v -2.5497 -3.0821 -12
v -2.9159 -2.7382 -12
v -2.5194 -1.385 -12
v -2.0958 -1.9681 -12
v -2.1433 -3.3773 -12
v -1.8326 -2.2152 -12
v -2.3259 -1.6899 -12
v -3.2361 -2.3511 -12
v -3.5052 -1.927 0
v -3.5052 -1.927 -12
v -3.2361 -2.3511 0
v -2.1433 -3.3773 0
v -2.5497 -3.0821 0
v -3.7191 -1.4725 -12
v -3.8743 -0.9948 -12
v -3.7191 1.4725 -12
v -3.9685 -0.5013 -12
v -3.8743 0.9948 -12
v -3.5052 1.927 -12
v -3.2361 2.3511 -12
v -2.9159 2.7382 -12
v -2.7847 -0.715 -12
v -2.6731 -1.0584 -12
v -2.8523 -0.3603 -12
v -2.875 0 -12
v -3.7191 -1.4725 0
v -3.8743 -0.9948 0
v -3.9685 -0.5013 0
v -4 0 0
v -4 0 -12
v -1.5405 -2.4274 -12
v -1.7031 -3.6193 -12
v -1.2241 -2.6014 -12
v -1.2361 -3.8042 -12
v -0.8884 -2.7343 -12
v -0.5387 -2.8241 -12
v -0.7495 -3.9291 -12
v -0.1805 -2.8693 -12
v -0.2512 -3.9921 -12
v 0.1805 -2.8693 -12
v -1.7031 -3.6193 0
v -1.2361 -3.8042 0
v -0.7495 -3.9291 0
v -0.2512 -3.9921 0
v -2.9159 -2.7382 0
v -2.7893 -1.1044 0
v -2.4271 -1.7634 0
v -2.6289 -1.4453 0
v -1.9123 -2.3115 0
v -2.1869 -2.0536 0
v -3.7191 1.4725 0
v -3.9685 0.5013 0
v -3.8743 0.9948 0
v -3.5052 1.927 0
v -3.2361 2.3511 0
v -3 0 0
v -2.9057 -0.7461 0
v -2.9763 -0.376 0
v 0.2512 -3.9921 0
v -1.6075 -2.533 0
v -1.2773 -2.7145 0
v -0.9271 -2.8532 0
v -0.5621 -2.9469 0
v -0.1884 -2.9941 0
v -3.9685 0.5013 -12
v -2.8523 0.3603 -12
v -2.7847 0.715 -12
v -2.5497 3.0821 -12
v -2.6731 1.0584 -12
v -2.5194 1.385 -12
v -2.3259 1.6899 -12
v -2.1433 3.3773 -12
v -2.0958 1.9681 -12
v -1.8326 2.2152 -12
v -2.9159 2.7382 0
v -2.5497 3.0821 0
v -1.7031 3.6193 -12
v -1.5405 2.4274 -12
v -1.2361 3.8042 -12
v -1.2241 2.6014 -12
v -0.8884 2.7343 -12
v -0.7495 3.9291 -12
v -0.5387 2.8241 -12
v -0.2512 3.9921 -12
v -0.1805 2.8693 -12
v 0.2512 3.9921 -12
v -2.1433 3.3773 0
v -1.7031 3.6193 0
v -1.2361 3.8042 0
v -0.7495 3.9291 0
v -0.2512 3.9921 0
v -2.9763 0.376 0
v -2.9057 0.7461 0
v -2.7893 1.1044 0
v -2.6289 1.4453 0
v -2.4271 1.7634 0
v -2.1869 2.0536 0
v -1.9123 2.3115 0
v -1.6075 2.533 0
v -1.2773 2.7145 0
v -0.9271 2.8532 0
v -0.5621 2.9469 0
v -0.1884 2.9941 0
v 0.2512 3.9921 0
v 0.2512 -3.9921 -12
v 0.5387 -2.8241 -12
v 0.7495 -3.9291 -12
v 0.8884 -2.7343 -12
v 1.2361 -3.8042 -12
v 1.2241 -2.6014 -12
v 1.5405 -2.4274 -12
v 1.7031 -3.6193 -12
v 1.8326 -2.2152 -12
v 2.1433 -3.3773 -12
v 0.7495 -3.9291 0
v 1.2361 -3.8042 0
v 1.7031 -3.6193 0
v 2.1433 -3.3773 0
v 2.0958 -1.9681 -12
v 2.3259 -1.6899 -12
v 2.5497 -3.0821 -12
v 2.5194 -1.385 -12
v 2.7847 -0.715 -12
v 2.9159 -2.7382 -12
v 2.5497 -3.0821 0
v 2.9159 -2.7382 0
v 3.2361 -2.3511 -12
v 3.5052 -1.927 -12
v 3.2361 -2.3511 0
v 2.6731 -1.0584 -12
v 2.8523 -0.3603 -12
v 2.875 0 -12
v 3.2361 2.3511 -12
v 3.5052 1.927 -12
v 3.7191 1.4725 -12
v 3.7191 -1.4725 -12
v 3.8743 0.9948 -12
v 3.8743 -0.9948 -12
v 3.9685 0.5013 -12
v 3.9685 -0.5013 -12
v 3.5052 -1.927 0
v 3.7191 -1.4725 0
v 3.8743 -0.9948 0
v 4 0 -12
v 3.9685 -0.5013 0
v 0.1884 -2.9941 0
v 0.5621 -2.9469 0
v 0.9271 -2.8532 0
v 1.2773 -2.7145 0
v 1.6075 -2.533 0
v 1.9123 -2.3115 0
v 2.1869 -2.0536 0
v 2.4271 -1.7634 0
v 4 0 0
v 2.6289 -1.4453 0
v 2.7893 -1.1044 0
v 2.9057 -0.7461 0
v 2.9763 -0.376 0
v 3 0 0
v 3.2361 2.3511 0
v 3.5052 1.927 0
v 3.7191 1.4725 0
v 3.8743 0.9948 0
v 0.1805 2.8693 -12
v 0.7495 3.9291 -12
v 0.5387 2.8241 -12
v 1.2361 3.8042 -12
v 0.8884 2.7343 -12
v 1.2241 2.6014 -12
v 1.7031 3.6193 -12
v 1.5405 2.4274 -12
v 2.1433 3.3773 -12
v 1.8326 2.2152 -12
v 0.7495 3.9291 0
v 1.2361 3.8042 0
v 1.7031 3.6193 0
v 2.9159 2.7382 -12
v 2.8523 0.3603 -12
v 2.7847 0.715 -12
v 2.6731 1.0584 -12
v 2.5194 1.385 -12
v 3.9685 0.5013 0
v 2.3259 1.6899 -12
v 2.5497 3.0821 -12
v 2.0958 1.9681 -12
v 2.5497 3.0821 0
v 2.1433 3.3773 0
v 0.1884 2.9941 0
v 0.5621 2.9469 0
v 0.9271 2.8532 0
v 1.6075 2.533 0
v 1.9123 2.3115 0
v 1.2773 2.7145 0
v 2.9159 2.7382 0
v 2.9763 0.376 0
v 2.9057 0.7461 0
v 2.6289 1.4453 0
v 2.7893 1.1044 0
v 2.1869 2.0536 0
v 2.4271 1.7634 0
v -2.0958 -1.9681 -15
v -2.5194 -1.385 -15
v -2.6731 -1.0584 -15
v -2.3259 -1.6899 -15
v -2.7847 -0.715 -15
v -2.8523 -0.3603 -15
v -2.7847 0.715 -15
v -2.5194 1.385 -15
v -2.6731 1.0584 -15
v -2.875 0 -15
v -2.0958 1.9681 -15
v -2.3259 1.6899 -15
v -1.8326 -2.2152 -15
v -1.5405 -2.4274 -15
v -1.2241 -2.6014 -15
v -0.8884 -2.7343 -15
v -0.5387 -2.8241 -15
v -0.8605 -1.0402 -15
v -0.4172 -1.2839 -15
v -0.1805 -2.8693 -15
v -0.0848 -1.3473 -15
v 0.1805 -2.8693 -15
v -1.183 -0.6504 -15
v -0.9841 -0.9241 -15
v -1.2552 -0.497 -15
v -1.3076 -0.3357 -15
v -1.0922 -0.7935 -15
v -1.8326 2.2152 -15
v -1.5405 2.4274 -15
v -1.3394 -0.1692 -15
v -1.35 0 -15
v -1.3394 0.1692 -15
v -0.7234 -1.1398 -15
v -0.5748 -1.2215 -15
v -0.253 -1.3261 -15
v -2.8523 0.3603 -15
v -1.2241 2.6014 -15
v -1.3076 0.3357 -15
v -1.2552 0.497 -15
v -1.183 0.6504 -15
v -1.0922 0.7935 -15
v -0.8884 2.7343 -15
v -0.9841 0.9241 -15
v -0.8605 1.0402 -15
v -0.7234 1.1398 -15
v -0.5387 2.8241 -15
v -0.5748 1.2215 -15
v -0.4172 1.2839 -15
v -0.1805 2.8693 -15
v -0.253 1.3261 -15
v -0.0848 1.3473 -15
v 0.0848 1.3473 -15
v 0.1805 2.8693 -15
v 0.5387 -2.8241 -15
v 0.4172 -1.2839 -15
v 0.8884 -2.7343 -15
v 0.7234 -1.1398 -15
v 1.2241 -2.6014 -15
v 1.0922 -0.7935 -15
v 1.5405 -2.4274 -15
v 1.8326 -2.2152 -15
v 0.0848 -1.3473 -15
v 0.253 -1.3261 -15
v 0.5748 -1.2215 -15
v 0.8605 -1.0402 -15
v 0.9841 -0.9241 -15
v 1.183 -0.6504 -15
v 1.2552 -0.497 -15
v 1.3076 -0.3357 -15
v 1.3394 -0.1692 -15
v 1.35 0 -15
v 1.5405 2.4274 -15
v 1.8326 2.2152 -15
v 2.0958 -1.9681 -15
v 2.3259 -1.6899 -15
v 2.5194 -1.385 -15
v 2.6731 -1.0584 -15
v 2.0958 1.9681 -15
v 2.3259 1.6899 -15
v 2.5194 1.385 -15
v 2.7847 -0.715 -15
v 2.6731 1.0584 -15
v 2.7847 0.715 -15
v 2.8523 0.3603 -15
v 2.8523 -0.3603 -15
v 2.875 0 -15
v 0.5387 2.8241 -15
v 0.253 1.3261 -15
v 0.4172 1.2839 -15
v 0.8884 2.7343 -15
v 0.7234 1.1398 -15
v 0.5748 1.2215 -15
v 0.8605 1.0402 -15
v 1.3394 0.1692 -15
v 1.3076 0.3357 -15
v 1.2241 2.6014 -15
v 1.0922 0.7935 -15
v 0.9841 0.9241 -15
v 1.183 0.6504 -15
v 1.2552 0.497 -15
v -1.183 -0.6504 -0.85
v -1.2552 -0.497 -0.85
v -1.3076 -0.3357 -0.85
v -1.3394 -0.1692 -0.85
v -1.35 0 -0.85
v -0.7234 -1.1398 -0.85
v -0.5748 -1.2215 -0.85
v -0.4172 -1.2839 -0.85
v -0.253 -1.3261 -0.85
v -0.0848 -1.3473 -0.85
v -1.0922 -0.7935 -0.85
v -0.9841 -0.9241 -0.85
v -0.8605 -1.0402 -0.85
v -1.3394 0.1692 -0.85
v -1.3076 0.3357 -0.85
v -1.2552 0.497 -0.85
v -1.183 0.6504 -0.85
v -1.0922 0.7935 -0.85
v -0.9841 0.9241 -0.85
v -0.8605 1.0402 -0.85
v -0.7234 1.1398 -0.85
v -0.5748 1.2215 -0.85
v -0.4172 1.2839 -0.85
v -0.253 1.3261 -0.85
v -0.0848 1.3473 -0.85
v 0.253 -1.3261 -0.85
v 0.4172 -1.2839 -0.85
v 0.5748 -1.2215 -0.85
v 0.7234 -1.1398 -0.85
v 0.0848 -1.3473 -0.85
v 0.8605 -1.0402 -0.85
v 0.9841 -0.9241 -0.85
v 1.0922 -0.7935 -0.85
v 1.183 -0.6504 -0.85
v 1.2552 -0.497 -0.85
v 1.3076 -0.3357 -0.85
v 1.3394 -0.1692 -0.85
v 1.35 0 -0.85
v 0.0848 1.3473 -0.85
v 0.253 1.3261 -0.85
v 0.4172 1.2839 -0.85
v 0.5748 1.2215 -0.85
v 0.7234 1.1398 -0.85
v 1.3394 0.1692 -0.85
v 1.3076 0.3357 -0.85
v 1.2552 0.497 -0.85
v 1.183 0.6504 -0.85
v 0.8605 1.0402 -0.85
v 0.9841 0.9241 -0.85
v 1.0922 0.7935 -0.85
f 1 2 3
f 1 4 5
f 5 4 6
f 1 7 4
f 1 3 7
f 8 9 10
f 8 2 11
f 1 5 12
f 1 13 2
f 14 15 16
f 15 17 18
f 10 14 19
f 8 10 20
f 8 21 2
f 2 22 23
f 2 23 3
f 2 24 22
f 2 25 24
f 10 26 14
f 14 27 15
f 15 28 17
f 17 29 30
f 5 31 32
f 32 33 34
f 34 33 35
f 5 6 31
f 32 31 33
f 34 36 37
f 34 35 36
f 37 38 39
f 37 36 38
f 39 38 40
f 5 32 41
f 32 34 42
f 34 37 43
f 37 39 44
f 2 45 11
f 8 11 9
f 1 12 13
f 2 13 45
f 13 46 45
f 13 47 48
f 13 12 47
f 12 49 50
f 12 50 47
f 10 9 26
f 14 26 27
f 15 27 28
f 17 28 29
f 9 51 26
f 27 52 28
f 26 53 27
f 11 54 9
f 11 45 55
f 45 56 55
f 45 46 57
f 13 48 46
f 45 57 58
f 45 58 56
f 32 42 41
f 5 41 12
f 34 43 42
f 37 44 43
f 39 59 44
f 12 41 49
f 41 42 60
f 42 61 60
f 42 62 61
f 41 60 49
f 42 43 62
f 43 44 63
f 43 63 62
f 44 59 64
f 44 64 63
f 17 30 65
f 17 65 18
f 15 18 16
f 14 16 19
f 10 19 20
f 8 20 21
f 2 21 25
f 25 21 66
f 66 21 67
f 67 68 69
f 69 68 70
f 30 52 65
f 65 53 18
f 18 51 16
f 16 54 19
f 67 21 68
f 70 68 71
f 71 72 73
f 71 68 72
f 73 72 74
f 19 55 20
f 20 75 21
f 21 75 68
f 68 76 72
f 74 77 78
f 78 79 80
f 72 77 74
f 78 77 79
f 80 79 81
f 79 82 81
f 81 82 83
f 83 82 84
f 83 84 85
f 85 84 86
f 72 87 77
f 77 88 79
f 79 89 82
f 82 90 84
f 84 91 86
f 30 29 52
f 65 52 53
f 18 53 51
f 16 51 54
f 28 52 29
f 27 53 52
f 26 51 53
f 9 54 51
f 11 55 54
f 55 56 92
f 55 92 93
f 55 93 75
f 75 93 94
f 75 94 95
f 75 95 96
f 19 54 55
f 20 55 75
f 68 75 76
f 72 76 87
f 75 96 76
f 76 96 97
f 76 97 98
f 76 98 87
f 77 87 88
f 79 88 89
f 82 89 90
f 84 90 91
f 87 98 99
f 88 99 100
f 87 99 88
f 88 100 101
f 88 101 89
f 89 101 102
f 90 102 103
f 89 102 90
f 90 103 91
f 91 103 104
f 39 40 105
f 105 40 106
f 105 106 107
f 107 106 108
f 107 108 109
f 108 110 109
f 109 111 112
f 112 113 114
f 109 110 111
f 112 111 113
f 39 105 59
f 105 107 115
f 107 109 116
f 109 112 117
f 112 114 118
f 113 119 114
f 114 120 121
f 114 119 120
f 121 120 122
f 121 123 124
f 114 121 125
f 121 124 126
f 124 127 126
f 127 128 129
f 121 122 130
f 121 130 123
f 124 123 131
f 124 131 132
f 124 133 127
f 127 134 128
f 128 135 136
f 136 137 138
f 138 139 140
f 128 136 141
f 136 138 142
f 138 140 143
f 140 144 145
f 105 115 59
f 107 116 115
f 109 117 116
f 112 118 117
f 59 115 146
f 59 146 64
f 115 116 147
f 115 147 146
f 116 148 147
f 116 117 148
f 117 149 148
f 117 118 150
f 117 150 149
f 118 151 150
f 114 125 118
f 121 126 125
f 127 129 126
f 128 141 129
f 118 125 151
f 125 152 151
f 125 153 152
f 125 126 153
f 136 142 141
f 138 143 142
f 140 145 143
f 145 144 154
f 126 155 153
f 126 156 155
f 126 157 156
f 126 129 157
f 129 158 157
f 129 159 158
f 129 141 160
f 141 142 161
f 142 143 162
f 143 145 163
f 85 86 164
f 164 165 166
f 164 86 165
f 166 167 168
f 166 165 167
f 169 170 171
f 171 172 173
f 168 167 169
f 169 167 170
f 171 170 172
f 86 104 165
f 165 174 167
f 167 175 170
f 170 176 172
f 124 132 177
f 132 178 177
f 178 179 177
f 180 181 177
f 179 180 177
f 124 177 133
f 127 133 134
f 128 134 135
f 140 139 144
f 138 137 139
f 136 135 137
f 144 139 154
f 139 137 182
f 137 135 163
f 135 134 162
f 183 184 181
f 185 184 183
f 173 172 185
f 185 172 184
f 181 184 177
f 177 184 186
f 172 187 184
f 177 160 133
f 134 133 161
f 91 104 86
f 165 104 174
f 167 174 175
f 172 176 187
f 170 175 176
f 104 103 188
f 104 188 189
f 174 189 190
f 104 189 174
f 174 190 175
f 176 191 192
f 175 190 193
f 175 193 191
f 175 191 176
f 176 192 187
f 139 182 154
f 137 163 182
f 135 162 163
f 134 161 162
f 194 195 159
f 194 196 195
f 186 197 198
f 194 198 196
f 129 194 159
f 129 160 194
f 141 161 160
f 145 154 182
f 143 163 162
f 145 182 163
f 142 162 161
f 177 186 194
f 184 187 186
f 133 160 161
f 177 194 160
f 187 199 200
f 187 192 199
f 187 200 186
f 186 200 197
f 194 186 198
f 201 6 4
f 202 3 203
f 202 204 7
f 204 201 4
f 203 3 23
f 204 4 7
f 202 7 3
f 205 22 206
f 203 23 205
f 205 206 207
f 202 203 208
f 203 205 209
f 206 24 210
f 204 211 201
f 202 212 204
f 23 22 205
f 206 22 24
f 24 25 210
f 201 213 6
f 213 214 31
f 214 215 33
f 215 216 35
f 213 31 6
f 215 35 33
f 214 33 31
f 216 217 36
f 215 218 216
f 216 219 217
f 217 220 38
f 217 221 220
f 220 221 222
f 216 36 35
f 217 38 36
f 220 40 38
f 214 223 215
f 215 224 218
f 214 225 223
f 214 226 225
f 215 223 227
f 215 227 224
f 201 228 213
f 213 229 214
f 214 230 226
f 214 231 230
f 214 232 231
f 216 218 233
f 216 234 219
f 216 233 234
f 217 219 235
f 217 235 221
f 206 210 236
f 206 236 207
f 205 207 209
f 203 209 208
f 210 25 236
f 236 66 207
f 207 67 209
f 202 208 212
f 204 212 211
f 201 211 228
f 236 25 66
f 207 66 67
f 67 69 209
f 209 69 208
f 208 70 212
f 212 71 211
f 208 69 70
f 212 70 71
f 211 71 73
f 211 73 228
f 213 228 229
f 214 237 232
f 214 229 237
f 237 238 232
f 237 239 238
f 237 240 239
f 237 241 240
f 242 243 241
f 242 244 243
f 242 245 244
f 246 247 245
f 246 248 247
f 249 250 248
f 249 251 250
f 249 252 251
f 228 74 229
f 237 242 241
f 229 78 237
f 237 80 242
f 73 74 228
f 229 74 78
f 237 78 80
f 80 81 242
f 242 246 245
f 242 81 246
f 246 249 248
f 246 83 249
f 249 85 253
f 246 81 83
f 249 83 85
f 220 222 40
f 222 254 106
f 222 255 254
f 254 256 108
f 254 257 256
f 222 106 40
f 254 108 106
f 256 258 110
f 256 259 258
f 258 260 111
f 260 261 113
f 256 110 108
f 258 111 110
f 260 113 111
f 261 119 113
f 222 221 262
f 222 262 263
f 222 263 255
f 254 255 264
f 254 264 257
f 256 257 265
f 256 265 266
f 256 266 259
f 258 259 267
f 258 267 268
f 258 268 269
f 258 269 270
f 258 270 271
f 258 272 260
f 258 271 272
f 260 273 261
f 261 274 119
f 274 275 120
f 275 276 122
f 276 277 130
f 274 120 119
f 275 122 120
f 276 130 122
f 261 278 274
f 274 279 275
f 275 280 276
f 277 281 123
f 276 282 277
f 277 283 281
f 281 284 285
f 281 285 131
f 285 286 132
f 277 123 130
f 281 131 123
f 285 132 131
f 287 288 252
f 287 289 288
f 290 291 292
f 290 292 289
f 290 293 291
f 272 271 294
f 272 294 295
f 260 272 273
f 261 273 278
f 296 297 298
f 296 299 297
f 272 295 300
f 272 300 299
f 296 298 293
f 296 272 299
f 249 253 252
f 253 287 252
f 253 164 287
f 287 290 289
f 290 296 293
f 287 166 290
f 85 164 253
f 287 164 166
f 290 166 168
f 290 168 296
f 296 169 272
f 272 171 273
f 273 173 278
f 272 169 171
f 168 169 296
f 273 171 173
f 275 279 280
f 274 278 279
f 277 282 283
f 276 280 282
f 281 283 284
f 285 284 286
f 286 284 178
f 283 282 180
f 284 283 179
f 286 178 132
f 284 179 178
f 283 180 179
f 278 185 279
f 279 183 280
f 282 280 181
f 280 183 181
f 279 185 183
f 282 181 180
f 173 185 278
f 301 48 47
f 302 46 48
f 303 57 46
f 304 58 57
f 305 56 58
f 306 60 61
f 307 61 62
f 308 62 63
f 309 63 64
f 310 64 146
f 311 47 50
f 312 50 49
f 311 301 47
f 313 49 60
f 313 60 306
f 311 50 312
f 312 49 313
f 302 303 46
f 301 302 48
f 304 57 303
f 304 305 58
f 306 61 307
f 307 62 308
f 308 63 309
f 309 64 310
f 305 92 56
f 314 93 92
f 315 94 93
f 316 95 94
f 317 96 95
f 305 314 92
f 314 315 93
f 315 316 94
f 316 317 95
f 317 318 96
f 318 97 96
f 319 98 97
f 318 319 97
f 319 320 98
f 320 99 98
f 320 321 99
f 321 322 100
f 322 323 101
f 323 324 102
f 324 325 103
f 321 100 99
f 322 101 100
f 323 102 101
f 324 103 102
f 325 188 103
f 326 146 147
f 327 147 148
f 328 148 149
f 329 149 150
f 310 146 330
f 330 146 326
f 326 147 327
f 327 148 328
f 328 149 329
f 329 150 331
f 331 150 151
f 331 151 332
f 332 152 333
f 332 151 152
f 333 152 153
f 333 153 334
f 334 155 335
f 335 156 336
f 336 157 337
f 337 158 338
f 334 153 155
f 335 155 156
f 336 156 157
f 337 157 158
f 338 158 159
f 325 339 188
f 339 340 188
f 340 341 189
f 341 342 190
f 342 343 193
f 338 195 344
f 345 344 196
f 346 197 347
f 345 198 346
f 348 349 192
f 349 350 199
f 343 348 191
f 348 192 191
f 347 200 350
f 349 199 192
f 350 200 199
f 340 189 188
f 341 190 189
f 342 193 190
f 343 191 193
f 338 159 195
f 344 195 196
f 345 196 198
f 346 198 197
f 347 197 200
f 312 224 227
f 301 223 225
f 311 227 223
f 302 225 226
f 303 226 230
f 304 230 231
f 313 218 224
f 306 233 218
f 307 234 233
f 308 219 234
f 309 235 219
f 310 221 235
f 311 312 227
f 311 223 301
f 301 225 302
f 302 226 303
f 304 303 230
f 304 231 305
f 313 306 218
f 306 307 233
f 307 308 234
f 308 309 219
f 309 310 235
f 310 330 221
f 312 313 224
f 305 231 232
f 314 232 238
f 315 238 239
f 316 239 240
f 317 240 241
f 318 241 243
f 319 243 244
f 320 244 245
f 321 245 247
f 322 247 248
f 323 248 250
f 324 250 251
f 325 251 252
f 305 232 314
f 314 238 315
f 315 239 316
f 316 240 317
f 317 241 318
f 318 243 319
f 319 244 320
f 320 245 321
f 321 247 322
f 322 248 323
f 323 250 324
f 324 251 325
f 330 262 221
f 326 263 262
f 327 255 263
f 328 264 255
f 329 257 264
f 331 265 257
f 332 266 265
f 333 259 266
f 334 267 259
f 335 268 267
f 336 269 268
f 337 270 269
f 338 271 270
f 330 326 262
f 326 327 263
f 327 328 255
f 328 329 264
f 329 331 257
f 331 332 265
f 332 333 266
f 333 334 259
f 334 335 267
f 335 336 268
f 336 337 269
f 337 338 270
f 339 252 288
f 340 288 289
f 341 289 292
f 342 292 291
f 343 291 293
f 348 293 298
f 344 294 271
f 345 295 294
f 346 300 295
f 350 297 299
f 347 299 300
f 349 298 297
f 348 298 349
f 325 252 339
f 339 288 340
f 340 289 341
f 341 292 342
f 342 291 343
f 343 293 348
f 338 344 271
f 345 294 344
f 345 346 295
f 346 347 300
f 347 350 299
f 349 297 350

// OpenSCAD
$fn = 50;

difference() {
	union() {
		translate(v = [0, 0, -12.0]) {
			cylinder(h = 12, r = 4.0);
		}
		#translate(v = [0, 0, -15.0]) {
			cylinder(h = 15, r = 2.875);
		}
	}
	union() {
		translate(v = [0, 0, 0]) {
			rotate(a = [0, 0, 0]) {
				difference() {
					union() {
						translate(v = [0, 0, -15.0]) {
							cylinder(h = 15, r = 1.0);
						}
						translate(v = [0, 0, -0.85]) {
							cylinder(h = 0.85, r1 = 1.35, r2 = 3.0);
						}
						translate(v = [0, 0, -15.0]) {
							cylinder(h = 15, r = 1.35);
						}
						translate(v = [0, 0, -15.0]) {
							cylinder(h = 15, r = 1.0);
						}
					}
					union();
				}
			}
		}
	}
}
